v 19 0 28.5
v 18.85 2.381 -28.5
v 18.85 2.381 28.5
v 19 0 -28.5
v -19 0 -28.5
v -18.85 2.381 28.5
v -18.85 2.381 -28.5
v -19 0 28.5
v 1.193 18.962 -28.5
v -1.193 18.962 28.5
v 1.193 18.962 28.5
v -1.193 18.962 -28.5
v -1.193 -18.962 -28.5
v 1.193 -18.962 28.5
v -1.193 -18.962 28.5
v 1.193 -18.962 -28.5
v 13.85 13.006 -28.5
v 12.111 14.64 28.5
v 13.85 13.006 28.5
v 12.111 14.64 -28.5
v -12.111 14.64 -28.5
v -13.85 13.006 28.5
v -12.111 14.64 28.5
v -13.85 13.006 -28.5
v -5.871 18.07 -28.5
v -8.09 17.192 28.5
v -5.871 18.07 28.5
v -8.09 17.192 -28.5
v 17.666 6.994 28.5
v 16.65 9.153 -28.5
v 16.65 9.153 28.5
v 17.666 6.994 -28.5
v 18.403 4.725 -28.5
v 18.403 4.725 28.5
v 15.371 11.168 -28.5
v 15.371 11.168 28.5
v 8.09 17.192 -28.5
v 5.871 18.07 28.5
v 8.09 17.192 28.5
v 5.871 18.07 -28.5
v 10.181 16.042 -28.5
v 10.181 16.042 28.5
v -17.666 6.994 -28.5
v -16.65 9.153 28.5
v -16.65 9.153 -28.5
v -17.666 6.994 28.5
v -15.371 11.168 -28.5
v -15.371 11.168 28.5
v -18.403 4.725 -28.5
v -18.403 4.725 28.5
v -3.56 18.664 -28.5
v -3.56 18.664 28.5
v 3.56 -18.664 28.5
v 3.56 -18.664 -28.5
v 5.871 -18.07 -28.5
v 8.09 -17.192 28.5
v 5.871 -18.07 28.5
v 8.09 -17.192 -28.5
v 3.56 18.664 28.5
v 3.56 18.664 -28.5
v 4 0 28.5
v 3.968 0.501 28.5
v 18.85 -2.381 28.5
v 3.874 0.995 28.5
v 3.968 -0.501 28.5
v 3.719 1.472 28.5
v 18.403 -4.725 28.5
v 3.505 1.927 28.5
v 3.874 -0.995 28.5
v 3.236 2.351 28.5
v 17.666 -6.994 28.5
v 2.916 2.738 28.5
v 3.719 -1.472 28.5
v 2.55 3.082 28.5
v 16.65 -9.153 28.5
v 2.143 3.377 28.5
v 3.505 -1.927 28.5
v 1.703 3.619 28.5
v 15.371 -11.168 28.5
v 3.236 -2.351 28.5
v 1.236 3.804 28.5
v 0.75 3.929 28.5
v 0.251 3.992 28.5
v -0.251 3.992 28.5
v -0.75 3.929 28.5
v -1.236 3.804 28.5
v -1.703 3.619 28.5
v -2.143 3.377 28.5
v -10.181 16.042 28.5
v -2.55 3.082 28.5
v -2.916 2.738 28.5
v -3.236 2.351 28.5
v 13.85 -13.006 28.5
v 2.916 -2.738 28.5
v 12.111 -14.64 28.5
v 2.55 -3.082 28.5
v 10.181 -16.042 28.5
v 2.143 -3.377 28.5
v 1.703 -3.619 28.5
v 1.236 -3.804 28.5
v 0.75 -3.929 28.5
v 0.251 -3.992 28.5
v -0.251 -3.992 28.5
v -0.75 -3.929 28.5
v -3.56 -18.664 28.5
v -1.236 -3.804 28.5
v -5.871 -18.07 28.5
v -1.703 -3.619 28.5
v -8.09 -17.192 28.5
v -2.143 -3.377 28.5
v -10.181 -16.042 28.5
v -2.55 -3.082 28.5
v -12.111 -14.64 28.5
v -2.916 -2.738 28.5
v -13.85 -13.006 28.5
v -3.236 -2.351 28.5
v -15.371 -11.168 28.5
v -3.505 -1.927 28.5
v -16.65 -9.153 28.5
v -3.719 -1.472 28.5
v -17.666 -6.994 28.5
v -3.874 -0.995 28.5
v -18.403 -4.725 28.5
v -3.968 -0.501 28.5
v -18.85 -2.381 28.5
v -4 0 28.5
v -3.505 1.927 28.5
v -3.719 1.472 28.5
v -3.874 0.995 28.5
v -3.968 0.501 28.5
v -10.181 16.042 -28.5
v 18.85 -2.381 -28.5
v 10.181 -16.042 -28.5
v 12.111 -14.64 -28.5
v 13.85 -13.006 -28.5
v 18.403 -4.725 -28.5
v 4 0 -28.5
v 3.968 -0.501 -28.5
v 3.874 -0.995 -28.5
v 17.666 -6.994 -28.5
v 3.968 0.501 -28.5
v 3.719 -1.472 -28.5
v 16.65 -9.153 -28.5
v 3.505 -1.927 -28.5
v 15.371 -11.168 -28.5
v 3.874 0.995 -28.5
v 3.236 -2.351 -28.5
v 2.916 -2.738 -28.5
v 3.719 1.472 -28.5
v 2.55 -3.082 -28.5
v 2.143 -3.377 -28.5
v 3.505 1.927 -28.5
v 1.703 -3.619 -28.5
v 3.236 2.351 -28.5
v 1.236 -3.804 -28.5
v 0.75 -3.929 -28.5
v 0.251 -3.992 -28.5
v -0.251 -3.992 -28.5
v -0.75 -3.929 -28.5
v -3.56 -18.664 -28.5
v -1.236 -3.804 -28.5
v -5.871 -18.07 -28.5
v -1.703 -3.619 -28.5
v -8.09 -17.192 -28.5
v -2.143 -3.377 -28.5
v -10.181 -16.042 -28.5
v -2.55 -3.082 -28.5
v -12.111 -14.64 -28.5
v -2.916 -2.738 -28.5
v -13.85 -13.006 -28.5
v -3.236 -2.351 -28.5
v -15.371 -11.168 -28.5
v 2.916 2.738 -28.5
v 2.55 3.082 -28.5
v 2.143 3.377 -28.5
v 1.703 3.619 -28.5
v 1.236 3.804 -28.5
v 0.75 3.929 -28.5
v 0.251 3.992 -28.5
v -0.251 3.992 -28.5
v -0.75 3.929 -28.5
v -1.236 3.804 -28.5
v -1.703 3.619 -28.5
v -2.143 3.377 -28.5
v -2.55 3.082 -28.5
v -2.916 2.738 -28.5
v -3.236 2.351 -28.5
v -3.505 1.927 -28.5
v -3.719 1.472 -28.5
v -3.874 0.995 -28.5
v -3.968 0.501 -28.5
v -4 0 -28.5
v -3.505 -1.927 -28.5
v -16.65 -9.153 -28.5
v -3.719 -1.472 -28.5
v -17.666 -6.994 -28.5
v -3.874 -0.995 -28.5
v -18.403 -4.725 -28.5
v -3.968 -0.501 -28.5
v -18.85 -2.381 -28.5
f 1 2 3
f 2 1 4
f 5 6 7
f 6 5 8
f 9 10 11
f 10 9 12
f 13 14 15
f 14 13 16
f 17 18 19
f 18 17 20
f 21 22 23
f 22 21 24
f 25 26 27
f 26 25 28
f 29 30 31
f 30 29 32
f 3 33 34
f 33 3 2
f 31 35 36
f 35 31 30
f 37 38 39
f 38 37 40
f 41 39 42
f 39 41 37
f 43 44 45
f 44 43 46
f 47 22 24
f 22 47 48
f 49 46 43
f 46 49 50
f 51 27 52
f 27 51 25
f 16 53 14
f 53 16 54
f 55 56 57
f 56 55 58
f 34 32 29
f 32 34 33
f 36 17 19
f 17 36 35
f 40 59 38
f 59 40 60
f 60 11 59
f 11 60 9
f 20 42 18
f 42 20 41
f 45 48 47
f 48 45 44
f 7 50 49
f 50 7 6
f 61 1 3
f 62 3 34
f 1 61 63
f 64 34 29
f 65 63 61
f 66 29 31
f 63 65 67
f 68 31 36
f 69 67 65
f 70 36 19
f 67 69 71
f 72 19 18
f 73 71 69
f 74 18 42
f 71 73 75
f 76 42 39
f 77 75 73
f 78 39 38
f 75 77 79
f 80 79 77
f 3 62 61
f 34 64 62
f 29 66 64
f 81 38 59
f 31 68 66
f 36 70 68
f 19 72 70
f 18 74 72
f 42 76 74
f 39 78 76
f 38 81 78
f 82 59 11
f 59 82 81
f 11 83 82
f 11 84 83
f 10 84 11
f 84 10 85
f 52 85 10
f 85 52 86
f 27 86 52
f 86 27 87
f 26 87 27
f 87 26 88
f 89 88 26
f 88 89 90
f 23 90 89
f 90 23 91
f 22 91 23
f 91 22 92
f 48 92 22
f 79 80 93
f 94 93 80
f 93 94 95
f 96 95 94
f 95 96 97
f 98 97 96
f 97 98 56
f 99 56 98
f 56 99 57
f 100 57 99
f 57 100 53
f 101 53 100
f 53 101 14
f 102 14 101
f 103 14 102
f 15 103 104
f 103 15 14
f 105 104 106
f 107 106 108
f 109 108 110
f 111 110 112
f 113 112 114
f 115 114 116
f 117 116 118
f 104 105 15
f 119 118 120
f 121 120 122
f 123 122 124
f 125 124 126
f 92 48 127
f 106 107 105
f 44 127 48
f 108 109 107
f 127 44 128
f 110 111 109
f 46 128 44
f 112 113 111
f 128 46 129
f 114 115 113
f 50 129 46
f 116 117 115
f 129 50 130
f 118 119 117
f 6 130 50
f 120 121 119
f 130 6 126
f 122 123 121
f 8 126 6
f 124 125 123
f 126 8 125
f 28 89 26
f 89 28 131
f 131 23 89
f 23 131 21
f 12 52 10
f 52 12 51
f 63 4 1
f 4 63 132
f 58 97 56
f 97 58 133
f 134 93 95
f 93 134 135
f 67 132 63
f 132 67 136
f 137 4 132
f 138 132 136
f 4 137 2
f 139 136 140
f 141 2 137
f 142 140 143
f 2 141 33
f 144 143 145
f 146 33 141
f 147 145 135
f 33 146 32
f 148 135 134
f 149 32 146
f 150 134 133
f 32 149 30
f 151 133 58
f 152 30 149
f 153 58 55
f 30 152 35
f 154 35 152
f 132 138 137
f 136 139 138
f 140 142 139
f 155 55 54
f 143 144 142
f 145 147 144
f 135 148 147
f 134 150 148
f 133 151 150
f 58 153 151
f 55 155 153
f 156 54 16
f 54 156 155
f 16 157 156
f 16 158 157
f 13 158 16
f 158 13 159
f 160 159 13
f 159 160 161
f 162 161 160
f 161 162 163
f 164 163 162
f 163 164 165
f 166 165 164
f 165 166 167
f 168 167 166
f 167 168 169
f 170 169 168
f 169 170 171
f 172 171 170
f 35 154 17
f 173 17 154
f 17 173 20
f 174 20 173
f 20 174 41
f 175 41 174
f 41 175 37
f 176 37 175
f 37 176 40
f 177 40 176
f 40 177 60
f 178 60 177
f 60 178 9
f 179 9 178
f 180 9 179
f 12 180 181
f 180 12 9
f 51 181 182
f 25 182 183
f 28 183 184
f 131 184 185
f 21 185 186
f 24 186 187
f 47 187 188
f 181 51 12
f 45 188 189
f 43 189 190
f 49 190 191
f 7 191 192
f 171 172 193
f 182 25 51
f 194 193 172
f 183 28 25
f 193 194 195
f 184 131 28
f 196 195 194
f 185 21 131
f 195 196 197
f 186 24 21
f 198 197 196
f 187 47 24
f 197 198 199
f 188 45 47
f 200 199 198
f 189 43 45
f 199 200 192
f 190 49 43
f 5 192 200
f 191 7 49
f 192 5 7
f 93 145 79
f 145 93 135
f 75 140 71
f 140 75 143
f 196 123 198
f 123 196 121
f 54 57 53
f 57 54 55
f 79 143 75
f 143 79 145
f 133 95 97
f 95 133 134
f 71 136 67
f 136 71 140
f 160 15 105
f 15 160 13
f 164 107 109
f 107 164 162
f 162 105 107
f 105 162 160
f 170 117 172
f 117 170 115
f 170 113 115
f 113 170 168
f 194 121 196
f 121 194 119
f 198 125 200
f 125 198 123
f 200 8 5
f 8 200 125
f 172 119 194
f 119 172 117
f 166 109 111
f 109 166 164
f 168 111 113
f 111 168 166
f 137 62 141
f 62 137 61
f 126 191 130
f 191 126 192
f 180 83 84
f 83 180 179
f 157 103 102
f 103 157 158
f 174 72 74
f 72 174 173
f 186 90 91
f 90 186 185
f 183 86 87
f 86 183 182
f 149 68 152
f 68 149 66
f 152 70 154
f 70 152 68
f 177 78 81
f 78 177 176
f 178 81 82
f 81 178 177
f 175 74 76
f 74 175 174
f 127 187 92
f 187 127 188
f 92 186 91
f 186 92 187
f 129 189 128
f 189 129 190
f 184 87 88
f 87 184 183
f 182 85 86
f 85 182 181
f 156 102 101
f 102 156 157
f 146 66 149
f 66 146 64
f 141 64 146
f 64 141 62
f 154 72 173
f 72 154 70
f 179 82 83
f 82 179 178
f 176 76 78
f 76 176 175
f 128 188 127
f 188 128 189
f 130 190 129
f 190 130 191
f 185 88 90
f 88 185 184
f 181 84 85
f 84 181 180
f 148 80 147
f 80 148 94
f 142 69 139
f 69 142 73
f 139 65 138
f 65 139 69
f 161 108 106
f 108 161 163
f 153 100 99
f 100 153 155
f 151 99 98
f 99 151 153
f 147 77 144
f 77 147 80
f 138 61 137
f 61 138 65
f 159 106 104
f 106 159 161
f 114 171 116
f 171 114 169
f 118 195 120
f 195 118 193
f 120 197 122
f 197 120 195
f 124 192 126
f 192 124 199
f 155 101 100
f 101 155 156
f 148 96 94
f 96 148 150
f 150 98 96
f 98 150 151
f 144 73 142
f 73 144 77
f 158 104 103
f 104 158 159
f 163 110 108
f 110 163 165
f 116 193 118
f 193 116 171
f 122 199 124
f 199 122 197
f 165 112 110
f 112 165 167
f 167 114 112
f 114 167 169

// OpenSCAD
$fn = 50;


difference() {
	union() {
		translate(v = [0, 0, -28.5000000000]) {
			cylinder(h = 57, r = 19.0000000000);
		}
	}
	union() {
		translate(v = [0, 0, -100.0000000000]) {
			cylinder(h = 200, r = 4.0000000000);
		}
	}
}
